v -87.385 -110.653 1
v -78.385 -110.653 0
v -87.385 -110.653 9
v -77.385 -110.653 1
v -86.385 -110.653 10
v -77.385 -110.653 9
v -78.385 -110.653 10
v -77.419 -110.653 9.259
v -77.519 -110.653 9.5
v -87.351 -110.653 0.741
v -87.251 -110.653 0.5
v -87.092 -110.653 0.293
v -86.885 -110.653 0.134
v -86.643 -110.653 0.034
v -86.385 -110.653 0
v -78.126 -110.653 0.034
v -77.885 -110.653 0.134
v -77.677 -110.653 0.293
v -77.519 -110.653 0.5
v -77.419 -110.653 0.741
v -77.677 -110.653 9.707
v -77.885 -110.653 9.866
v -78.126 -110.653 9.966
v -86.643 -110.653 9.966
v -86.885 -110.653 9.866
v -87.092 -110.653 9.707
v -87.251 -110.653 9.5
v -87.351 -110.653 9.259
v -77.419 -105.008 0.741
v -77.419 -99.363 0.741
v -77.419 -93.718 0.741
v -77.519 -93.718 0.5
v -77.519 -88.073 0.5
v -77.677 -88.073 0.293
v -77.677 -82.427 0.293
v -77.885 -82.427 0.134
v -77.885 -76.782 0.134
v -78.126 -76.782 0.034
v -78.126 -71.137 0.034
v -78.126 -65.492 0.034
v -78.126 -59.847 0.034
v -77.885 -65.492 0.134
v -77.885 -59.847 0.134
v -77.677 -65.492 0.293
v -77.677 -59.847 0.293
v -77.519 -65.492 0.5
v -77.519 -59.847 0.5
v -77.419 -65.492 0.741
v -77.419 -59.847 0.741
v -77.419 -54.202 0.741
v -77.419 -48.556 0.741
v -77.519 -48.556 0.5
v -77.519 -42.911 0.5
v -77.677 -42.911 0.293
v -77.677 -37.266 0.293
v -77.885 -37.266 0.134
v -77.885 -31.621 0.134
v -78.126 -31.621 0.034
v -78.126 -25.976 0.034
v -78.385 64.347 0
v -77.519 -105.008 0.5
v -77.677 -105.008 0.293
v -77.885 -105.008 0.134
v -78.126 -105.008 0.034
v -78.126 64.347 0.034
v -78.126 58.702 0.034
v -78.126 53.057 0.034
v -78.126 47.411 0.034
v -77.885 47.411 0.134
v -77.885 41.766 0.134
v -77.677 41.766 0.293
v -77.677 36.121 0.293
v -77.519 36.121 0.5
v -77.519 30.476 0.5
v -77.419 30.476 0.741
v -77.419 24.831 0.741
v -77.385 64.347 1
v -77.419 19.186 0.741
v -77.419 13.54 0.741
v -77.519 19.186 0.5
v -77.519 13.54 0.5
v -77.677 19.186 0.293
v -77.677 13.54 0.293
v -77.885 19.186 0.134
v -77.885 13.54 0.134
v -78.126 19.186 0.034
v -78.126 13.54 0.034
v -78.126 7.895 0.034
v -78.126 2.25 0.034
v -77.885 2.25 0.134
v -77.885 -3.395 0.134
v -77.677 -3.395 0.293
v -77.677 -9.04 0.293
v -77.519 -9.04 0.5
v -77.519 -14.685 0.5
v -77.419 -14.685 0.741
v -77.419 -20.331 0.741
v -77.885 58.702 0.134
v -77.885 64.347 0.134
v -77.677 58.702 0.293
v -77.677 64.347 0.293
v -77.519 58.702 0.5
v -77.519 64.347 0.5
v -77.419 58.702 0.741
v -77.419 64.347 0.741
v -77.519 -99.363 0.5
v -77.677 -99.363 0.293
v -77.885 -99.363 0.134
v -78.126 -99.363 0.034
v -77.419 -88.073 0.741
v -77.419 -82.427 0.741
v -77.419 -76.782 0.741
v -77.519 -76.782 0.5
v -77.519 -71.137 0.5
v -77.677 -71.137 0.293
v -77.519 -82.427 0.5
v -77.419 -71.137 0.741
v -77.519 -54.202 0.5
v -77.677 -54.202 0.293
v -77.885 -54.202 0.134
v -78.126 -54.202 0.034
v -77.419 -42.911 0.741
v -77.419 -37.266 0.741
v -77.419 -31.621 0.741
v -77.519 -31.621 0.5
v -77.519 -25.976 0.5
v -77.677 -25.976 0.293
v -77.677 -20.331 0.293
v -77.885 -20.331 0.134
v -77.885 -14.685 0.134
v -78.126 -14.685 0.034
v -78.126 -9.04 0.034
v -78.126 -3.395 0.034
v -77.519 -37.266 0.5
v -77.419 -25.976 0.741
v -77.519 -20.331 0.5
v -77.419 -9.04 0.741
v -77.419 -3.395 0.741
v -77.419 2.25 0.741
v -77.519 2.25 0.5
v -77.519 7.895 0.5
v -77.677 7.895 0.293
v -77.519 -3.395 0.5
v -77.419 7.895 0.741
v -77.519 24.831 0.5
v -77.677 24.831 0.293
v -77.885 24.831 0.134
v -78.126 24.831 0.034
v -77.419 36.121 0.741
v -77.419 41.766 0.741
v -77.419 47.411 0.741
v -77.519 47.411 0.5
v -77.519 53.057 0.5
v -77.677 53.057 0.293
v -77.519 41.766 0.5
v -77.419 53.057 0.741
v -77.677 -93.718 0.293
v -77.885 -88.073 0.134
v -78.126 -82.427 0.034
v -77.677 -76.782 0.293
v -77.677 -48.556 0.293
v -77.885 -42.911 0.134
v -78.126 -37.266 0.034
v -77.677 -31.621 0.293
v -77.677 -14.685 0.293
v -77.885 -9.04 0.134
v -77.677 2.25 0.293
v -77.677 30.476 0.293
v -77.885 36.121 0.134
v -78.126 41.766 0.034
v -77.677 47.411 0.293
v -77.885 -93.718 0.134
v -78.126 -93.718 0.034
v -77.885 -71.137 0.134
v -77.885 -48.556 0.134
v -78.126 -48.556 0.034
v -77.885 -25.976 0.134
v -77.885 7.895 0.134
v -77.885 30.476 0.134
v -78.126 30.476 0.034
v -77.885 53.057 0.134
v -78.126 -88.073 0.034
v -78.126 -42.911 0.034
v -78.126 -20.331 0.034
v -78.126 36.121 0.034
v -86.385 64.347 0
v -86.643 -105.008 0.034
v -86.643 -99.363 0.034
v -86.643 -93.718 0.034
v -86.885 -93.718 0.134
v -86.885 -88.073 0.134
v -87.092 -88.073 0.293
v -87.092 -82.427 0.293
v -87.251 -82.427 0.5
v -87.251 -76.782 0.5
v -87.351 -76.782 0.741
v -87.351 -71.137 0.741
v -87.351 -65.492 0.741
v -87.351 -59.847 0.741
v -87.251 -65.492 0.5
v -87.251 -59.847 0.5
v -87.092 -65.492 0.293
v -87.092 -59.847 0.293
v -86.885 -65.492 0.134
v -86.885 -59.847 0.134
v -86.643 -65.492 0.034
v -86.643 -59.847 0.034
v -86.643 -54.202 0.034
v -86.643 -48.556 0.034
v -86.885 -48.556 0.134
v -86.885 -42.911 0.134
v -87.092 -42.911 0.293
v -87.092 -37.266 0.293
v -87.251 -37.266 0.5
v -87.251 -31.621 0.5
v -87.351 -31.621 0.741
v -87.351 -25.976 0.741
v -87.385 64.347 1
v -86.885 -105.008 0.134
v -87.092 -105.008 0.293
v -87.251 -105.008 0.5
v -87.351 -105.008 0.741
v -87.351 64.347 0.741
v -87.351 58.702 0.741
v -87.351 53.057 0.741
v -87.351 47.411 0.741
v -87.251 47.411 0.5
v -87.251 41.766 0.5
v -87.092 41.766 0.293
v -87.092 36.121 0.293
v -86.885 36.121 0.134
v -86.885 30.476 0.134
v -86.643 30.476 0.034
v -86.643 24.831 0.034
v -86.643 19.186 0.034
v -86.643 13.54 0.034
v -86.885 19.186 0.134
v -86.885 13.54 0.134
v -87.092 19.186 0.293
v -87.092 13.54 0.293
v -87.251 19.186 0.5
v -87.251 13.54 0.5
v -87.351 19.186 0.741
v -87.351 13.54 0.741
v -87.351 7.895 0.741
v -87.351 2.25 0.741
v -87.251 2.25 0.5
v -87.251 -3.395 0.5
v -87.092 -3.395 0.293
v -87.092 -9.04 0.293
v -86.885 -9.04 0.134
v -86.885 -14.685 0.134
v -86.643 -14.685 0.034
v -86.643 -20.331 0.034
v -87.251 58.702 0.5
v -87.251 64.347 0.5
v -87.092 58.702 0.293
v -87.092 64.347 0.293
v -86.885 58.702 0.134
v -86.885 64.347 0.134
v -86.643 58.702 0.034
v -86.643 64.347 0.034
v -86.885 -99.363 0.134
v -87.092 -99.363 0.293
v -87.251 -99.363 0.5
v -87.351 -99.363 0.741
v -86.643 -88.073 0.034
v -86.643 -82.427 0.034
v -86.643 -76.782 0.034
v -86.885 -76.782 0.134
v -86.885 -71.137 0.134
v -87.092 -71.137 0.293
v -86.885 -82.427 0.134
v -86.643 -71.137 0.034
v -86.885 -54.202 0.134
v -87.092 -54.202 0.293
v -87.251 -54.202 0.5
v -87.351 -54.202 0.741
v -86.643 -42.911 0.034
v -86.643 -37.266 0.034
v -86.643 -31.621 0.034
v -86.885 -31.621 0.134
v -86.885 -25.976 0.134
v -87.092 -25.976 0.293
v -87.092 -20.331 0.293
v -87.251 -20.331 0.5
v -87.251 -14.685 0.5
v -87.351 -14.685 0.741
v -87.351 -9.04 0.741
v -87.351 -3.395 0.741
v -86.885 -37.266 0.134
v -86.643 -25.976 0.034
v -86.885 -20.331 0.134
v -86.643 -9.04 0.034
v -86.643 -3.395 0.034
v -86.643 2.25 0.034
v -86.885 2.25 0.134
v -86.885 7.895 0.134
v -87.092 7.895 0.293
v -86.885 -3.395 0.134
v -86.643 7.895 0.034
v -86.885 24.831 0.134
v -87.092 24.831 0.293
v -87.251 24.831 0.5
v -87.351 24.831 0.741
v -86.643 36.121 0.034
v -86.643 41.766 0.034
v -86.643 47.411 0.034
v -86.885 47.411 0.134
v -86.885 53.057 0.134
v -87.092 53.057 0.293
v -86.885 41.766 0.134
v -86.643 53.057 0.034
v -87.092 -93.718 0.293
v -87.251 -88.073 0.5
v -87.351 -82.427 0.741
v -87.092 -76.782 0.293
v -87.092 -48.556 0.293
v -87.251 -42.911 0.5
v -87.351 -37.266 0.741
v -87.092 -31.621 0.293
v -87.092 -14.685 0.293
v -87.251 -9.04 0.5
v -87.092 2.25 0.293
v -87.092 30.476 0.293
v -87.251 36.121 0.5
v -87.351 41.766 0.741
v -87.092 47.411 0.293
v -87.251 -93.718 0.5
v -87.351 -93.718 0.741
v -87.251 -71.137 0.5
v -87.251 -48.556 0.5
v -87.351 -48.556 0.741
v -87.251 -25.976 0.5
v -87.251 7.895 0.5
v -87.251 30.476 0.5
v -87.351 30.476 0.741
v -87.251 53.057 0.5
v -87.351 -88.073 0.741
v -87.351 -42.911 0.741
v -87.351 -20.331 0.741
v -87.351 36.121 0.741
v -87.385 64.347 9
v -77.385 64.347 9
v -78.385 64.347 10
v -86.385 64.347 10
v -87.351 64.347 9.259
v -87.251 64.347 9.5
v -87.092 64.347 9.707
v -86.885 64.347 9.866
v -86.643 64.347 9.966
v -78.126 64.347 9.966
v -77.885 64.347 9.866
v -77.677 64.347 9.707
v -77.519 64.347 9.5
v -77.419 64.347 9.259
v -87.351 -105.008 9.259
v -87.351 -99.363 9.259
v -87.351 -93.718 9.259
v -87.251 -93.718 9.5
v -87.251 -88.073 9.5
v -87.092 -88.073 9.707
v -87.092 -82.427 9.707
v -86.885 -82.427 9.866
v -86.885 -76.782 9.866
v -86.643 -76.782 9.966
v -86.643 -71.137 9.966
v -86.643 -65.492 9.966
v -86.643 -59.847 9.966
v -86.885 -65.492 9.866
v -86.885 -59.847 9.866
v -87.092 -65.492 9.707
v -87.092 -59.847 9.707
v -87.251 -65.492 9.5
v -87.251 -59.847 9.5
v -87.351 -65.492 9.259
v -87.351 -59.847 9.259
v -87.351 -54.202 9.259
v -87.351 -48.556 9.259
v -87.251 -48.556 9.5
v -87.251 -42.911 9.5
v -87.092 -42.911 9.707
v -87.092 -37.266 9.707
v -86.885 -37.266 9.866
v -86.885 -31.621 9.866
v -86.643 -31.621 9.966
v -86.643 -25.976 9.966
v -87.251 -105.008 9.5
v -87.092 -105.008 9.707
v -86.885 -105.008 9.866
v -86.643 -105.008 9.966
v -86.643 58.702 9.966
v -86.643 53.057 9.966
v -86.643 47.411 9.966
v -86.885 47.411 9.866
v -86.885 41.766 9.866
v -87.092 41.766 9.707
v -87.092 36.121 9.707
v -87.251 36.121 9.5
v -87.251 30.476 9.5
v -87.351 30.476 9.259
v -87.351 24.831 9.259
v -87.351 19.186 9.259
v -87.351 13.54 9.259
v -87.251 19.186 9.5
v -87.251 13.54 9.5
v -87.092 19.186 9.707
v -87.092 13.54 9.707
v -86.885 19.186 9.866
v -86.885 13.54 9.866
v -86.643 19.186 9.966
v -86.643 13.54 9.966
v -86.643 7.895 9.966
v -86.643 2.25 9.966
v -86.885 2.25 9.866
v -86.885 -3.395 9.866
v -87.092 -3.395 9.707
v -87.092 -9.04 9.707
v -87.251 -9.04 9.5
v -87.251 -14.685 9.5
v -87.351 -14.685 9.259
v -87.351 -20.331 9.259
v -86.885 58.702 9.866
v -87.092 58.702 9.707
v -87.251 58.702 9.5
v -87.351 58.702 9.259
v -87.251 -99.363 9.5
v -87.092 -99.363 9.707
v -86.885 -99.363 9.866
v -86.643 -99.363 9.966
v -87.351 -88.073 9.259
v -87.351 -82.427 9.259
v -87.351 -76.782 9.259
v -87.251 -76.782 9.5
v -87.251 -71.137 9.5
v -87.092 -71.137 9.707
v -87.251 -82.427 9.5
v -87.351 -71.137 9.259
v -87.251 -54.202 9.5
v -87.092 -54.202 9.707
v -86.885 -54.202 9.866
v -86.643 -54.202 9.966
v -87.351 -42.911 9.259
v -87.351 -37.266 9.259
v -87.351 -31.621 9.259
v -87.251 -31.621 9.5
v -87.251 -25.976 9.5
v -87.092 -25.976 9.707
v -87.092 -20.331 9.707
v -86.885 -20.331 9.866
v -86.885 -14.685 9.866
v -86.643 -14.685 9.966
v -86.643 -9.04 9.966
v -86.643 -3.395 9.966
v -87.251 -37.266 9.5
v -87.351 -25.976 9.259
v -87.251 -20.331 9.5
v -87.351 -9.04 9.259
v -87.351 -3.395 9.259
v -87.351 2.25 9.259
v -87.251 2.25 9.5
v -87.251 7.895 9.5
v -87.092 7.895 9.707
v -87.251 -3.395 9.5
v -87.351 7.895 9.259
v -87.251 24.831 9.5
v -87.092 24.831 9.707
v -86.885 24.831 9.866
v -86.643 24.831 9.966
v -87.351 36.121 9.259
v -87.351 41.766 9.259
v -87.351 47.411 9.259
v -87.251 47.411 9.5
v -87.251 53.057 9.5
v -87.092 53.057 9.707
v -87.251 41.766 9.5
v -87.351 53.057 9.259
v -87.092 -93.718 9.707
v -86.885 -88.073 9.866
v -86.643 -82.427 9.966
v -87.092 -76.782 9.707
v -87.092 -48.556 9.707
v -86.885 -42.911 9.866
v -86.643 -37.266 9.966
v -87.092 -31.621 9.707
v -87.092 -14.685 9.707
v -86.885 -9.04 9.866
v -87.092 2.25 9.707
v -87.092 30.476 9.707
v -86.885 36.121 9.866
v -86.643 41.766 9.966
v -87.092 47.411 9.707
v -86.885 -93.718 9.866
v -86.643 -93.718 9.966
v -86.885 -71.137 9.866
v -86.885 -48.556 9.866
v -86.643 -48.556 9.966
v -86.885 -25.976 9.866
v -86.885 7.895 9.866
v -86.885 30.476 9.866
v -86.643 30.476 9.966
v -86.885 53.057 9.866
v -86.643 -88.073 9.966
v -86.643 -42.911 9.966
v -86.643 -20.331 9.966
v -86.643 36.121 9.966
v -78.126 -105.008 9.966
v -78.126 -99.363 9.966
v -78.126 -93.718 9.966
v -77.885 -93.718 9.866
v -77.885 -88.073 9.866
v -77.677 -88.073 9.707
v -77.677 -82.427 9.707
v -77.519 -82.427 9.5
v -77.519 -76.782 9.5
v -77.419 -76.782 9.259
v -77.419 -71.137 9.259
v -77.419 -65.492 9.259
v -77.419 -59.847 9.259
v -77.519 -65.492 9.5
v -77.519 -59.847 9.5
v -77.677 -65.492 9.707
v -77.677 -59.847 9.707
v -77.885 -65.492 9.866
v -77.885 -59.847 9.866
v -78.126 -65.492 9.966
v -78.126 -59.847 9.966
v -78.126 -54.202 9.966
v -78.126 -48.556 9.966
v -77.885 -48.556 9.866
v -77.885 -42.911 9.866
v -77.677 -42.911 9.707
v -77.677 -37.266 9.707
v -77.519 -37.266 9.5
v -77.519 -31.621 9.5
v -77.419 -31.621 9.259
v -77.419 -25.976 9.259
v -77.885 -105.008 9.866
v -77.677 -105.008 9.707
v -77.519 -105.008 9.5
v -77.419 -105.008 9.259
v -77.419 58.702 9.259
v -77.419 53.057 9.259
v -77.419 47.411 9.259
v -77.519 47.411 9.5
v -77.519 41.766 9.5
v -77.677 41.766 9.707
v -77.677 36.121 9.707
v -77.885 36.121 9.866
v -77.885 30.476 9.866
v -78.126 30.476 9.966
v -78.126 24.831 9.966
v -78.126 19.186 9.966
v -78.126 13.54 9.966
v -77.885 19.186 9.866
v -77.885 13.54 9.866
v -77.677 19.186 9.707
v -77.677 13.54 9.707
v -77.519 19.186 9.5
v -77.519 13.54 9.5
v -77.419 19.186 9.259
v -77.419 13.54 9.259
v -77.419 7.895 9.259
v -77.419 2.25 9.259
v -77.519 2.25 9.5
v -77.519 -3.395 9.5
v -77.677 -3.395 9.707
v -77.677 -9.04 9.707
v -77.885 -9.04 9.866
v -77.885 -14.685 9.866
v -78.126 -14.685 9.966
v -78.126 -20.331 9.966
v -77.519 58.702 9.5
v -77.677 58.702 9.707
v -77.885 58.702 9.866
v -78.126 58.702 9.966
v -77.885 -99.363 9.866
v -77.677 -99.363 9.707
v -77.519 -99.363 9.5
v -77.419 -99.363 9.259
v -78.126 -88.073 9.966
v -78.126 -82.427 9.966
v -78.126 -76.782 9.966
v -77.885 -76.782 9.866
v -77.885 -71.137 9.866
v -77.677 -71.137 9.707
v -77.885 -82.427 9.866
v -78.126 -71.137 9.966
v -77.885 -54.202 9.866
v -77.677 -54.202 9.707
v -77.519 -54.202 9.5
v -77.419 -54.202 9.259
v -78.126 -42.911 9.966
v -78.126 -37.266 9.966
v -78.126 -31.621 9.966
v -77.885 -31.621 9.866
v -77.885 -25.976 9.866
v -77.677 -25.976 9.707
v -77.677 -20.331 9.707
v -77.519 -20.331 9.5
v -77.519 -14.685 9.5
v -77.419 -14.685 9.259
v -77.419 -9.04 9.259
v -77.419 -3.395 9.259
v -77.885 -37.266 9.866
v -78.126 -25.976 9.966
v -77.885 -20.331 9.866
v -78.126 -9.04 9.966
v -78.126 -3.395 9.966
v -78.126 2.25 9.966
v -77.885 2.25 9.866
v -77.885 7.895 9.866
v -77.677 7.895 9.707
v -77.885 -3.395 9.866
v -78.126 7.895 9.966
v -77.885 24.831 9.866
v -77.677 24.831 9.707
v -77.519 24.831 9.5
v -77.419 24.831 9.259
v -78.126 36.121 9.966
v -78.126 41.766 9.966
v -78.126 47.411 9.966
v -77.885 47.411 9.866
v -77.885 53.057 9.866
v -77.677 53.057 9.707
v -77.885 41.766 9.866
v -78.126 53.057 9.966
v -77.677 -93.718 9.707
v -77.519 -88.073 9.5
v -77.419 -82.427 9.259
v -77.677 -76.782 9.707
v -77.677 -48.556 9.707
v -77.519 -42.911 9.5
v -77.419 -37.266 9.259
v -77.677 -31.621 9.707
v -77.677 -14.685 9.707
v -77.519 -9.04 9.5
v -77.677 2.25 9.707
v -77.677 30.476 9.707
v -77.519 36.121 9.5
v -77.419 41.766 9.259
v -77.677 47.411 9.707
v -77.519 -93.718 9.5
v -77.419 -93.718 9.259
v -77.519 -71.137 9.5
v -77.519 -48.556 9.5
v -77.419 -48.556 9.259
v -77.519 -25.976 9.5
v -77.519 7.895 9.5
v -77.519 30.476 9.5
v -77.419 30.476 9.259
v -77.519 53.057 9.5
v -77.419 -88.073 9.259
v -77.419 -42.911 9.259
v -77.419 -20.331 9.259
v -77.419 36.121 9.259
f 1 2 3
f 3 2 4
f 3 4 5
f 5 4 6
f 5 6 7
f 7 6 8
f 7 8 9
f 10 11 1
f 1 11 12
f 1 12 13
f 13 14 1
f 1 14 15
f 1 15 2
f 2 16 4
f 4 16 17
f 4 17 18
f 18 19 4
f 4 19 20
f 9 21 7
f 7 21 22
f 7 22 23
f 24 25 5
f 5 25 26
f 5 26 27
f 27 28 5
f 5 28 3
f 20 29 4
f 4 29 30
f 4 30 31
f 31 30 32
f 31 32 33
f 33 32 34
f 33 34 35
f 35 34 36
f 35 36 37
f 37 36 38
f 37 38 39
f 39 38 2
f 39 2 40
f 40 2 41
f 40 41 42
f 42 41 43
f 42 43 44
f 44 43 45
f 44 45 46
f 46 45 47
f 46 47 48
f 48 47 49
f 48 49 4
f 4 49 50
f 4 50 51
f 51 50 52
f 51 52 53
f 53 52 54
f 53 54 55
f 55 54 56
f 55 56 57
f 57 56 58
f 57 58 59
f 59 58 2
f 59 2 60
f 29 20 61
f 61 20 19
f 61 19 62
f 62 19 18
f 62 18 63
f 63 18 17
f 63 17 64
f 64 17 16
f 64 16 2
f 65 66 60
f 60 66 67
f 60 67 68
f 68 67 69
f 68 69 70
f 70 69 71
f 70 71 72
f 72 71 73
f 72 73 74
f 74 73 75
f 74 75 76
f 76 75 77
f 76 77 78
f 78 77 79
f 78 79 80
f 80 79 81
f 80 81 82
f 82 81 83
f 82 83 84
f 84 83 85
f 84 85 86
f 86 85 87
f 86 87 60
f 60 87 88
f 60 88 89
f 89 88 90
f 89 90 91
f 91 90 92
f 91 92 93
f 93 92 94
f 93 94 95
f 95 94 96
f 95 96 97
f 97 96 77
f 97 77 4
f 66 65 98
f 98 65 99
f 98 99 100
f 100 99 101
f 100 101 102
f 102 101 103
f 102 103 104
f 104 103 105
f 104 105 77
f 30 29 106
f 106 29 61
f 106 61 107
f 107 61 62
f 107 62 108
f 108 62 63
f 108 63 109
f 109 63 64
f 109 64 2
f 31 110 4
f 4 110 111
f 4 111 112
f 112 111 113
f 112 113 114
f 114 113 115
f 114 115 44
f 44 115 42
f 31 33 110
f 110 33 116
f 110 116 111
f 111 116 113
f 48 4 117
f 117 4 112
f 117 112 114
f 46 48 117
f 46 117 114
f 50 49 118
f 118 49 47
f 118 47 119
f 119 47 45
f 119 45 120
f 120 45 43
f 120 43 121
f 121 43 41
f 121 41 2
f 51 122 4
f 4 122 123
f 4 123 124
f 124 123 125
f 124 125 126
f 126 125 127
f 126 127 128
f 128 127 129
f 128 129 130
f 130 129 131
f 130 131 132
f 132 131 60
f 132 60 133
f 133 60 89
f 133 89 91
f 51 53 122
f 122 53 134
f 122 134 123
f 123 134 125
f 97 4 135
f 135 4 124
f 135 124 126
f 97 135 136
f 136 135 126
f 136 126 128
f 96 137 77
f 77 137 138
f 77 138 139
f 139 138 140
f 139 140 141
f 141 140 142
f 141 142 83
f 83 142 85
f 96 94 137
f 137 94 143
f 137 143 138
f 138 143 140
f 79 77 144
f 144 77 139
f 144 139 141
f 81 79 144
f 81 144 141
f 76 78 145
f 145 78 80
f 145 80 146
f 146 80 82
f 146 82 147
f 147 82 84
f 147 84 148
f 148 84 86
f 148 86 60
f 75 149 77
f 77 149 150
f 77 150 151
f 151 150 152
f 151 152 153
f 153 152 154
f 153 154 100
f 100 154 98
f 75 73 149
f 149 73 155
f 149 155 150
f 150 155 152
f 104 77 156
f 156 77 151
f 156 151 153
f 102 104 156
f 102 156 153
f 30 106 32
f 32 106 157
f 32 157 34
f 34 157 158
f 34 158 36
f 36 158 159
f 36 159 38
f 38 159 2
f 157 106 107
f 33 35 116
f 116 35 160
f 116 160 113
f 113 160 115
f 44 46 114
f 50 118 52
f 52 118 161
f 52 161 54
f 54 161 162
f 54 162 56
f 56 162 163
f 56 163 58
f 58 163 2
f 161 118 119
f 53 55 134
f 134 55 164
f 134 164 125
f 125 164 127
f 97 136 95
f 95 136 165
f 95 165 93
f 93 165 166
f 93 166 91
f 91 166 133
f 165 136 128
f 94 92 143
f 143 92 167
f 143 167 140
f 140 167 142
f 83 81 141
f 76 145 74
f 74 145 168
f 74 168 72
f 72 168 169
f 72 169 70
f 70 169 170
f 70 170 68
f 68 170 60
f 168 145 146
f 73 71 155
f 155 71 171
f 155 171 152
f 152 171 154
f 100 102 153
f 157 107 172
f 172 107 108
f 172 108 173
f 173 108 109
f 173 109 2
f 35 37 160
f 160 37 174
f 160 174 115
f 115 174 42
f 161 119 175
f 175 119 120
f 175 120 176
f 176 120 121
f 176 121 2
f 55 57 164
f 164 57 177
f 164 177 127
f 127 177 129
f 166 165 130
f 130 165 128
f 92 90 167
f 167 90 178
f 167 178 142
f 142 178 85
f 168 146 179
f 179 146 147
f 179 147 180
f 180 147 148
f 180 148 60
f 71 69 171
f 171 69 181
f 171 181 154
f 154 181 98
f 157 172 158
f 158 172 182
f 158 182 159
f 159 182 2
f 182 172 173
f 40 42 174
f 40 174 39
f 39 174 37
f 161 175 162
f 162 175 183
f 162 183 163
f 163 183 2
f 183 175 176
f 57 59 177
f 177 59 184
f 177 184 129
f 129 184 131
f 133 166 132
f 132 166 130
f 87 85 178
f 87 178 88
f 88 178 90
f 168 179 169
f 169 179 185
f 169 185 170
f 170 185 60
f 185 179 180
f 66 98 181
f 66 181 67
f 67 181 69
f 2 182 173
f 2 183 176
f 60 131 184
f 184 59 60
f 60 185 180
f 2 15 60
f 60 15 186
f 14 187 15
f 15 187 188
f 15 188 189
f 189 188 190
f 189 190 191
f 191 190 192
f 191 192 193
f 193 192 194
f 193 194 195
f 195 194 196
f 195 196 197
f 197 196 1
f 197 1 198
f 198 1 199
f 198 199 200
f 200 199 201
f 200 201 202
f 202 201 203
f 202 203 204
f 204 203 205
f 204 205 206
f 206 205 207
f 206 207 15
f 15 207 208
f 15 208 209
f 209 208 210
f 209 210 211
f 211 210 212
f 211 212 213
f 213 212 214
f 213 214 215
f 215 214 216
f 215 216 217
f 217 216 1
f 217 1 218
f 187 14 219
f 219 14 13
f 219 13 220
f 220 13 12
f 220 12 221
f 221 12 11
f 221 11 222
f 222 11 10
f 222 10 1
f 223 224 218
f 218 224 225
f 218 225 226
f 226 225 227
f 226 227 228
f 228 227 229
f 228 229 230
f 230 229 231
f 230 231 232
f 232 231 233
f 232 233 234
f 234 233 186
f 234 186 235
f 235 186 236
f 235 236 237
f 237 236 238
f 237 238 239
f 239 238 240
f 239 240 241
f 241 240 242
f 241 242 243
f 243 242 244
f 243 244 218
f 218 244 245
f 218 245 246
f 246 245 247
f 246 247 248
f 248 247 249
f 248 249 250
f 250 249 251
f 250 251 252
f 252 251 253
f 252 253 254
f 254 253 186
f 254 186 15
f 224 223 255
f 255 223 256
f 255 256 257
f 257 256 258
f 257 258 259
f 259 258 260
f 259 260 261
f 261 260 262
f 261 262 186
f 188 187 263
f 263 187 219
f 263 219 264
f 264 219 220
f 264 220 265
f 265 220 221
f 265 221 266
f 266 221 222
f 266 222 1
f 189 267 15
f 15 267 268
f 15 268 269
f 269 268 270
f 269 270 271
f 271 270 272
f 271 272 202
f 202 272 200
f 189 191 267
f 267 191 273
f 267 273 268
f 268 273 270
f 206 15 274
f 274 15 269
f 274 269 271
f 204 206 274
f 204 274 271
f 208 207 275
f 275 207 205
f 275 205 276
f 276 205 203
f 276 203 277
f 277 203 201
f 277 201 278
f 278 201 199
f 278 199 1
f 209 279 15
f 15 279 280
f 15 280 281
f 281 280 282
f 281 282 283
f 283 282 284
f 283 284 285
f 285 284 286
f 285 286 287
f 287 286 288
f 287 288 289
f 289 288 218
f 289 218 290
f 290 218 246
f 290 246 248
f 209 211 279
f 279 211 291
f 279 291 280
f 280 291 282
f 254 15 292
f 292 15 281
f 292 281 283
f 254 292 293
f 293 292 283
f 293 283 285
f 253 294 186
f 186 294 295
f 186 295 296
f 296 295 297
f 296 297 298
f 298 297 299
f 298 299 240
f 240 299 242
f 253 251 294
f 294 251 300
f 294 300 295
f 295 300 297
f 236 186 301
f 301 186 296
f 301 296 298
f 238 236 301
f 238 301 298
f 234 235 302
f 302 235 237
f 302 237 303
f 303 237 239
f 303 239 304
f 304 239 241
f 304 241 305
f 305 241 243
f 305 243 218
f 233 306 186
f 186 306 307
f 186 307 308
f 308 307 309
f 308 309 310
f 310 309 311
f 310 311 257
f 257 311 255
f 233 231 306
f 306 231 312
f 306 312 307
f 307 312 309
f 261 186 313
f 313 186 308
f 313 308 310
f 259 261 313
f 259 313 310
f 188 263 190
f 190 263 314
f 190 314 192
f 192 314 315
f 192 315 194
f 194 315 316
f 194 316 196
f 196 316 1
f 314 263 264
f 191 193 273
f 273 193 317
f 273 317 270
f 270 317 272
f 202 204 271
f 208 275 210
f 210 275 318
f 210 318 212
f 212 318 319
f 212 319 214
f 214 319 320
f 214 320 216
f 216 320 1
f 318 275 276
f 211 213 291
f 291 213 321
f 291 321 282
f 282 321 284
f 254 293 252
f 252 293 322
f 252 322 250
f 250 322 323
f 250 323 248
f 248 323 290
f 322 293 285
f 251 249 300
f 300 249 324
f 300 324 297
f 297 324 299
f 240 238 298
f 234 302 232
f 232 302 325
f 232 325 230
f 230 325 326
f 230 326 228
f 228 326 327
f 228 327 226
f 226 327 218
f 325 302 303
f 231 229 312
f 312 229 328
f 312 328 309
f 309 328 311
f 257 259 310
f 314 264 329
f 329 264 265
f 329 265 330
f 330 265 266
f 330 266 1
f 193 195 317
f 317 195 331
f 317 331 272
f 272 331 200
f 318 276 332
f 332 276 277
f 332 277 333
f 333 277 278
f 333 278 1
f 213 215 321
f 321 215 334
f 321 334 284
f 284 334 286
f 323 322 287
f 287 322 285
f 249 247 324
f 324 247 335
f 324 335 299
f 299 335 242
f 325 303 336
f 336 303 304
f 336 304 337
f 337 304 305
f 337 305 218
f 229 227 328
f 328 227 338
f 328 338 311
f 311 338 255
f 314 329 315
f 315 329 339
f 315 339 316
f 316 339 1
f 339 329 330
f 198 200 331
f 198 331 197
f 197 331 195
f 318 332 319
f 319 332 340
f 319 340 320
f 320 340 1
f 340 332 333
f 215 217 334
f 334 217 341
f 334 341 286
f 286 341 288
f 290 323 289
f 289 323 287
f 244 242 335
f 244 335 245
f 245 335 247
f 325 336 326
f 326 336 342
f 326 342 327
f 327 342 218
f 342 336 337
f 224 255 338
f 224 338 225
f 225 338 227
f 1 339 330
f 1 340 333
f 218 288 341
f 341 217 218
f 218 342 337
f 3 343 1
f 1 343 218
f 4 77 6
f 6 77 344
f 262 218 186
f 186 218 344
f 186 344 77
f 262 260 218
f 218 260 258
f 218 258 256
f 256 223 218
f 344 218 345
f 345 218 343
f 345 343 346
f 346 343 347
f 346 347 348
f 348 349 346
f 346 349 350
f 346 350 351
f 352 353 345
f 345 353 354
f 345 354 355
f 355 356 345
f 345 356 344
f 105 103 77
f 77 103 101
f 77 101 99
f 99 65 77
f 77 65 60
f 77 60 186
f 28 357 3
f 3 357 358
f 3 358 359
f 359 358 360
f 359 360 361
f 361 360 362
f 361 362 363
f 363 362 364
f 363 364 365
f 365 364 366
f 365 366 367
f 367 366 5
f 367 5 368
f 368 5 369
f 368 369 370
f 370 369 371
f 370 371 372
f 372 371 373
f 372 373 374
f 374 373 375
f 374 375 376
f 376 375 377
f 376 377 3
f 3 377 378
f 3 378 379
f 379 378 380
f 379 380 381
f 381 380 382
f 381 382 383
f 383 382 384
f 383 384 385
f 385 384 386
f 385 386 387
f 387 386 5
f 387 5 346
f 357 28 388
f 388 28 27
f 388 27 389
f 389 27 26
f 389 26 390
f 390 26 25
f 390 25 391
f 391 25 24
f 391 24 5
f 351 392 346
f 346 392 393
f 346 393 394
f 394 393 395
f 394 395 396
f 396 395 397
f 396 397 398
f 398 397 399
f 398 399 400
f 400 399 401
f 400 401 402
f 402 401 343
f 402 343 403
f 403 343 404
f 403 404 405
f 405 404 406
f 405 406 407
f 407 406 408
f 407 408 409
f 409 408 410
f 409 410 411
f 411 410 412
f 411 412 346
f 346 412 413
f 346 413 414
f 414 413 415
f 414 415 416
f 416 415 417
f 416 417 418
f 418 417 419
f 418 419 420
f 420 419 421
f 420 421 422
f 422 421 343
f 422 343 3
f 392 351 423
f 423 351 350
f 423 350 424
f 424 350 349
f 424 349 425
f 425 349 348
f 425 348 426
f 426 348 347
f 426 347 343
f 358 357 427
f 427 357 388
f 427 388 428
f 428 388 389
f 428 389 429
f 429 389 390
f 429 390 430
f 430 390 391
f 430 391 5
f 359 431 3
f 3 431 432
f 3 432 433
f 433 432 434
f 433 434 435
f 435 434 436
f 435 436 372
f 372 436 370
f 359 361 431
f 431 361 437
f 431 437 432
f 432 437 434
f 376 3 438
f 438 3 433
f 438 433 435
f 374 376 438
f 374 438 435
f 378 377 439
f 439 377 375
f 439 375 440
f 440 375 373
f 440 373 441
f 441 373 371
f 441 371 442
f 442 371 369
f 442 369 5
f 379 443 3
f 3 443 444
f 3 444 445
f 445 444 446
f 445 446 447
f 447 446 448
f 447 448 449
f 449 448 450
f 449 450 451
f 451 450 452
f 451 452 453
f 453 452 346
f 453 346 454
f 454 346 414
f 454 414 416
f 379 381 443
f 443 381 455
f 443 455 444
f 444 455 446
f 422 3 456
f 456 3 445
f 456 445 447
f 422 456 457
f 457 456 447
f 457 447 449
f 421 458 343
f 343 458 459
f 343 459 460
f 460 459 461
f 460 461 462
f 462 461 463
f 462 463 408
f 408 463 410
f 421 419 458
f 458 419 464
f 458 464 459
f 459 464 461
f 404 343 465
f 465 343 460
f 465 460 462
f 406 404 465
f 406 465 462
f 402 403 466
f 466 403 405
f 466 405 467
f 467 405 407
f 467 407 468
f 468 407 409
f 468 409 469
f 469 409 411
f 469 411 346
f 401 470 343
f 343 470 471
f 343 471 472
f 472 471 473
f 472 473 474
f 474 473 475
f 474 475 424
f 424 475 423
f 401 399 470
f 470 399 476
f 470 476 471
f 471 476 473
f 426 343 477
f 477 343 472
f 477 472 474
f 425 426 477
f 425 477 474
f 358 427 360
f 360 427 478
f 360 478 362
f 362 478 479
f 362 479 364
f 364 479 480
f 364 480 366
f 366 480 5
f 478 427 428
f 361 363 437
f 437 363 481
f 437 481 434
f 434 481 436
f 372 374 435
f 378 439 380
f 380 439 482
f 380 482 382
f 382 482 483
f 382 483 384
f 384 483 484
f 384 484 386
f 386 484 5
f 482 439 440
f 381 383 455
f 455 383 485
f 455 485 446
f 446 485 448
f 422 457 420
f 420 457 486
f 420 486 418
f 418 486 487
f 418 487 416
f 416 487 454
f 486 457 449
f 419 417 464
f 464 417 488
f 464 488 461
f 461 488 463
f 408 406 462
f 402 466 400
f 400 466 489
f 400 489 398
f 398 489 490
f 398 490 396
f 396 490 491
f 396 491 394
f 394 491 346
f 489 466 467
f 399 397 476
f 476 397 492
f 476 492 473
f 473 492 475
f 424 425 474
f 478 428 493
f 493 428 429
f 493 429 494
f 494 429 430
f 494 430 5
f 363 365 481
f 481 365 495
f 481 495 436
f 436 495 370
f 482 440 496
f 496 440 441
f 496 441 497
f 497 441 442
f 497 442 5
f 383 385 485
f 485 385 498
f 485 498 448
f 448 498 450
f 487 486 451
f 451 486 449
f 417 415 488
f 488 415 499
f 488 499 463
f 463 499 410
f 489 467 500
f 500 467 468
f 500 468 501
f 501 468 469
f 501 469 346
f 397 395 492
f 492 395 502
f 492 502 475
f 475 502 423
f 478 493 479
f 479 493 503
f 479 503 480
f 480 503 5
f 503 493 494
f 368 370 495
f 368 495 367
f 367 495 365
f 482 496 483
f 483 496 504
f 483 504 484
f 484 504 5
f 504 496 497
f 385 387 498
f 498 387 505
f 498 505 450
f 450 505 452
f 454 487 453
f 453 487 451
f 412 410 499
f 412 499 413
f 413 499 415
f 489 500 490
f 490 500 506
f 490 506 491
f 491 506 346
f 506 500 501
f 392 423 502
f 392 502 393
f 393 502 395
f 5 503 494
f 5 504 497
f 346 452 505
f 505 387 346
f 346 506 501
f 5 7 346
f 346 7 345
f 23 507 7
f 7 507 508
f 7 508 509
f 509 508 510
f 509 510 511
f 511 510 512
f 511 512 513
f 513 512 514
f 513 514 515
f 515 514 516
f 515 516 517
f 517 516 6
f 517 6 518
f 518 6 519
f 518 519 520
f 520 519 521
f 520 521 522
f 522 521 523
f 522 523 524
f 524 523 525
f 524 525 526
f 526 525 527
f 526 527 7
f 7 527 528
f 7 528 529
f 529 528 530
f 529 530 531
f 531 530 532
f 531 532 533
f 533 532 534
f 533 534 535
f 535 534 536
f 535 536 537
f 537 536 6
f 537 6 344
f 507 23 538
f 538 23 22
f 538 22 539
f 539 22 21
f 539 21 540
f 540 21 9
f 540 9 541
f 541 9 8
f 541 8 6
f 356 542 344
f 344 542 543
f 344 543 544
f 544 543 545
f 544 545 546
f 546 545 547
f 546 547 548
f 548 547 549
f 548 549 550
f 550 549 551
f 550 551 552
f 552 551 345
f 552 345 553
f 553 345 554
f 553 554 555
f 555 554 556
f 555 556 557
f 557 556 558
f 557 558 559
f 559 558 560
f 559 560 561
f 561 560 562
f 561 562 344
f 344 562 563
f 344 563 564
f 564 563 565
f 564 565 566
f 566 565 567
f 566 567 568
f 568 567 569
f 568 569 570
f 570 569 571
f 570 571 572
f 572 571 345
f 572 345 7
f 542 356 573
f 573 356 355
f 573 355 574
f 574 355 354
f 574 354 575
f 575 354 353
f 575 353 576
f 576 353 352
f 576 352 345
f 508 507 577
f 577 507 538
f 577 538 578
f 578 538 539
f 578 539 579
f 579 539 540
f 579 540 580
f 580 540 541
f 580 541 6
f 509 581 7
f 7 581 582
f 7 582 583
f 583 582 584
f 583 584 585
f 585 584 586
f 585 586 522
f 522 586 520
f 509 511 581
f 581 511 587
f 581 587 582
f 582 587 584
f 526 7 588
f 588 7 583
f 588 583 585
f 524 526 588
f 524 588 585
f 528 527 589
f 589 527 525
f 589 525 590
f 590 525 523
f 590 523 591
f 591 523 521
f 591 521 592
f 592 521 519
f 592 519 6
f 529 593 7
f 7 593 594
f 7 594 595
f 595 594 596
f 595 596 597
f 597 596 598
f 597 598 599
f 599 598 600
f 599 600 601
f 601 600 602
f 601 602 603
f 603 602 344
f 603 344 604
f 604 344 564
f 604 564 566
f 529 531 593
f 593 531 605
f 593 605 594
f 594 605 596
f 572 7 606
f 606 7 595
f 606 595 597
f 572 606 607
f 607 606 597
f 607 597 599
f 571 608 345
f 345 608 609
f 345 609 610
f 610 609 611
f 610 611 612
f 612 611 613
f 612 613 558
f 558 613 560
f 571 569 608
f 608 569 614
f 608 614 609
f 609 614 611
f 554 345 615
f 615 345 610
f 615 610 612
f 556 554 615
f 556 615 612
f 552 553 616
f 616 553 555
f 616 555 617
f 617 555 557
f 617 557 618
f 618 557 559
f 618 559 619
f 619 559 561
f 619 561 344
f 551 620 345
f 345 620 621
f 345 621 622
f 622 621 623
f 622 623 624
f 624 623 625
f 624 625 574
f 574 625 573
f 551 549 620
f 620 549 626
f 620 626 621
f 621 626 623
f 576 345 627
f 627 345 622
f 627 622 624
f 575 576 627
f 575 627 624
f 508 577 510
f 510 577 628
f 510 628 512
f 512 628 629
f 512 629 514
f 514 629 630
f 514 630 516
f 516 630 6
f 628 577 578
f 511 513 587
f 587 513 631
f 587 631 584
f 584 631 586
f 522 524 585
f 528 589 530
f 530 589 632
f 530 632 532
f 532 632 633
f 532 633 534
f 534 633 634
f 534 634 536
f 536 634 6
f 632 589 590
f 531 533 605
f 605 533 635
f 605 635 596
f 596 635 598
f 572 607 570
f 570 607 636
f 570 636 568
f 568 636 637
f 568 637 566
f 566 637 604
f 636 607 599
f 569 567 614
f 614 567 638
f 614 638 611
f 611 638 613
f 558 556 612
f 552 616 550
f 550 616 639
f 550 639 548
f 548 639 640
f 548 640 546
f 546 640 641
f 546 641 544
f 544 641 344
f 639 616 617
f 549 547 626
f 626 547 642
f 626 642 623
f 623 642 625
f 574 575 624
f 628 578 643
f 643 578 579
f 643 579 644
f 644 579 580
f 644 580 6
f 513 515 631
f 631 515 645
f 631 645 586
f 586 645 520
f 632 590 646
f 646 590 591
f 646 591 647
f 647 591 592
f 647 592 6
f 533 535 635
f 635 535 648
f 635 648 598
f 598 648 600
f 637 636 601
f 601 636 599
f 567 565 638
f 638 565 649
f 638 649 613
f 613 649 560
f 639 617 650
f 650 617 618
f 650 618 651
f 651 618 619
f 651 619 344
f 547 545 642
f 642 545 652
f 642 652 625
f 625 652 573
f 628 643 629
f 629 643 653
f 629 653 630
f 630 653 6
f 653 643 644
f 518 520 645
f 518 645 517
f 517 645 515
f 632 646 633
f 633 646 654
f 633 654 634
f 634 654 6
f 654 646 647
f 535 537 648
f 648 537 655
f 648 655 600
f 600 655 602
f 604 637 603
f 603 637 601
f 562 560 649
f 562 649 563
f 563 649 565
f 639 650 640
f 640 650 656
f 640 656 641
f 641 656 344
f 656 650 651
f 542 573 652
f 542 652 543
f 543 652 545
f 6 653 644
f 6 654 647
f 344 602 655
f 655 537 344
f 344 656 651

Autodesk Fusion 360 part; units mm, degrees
sketch "Sketch1" plane through (0, 0, 0) normal (0, 0, 1) x (1, 0, 0)
  line L0 (-77.3846, -285.6532) -> (-87.3846, -285.6532)
  line L1 (-77.3846, 64.3468) -> (-77.3846, -285.6532)
  line L2 (-87.3846, -285.6532) -> (-87.3846, 64.3468)
  line L3 (-87.3846, 64.3468) -> (-77.3846, 64.3468)
  dimension "d11" = 10
  dimension "d12" = 350
extrude "Extrude3" add sketch "Sketch1" along normal blind 10
fillet "Fillet3" radius 1 2 edges at (-77.3846, -110.6532, 10) (-87.3846, -110.6532, 10)
fillet "Fillet4" radius 1 2 edges at (-77.3846, -110.6532, 0) (-87.3846, -110.6532, 0)
sketch "Sketch2" plane through (0, -285.6532, 0) normal (0, -1, 0) x (1, 0, 0)
  arc A0 (-87.3846, 1) -> (-86.3846, 0) centre (-86.3846, 1) ccw
  line L0 (-86.3846, 0) -> (-78.3846, 0)
  arc A1 (-78.3846, 0) -> (-77.3846, 1) centre (-78.3846, 1) ccw
  line L1 (-77.3846, 1) -> (-77.3846, 9)
  arc A2 (-77.3846, 9) -> (-78.3846, 10) centre (-78.3846, 9) ccw
  line L2 (-78.3846, 10) -> (-86.3846, 10)
  arc A3 (-86.3846, 10) -> (-87.3846, 9) centre (-86.3846, 9) ccw
  line L3 (-87.3846, 9) -> (-87.3846, 1)
  curve L4
  curve L5
  curve L6
  curve L7
  curve L8
  curve L9
  curve L10
  curve L11
  curve L12
  curve L13
  point P0 (-77.3846, 0)
  point P1 (-87.3846, 0)
extrude "Extrude4" cut sketch "Sketch2" against normal blind 175
